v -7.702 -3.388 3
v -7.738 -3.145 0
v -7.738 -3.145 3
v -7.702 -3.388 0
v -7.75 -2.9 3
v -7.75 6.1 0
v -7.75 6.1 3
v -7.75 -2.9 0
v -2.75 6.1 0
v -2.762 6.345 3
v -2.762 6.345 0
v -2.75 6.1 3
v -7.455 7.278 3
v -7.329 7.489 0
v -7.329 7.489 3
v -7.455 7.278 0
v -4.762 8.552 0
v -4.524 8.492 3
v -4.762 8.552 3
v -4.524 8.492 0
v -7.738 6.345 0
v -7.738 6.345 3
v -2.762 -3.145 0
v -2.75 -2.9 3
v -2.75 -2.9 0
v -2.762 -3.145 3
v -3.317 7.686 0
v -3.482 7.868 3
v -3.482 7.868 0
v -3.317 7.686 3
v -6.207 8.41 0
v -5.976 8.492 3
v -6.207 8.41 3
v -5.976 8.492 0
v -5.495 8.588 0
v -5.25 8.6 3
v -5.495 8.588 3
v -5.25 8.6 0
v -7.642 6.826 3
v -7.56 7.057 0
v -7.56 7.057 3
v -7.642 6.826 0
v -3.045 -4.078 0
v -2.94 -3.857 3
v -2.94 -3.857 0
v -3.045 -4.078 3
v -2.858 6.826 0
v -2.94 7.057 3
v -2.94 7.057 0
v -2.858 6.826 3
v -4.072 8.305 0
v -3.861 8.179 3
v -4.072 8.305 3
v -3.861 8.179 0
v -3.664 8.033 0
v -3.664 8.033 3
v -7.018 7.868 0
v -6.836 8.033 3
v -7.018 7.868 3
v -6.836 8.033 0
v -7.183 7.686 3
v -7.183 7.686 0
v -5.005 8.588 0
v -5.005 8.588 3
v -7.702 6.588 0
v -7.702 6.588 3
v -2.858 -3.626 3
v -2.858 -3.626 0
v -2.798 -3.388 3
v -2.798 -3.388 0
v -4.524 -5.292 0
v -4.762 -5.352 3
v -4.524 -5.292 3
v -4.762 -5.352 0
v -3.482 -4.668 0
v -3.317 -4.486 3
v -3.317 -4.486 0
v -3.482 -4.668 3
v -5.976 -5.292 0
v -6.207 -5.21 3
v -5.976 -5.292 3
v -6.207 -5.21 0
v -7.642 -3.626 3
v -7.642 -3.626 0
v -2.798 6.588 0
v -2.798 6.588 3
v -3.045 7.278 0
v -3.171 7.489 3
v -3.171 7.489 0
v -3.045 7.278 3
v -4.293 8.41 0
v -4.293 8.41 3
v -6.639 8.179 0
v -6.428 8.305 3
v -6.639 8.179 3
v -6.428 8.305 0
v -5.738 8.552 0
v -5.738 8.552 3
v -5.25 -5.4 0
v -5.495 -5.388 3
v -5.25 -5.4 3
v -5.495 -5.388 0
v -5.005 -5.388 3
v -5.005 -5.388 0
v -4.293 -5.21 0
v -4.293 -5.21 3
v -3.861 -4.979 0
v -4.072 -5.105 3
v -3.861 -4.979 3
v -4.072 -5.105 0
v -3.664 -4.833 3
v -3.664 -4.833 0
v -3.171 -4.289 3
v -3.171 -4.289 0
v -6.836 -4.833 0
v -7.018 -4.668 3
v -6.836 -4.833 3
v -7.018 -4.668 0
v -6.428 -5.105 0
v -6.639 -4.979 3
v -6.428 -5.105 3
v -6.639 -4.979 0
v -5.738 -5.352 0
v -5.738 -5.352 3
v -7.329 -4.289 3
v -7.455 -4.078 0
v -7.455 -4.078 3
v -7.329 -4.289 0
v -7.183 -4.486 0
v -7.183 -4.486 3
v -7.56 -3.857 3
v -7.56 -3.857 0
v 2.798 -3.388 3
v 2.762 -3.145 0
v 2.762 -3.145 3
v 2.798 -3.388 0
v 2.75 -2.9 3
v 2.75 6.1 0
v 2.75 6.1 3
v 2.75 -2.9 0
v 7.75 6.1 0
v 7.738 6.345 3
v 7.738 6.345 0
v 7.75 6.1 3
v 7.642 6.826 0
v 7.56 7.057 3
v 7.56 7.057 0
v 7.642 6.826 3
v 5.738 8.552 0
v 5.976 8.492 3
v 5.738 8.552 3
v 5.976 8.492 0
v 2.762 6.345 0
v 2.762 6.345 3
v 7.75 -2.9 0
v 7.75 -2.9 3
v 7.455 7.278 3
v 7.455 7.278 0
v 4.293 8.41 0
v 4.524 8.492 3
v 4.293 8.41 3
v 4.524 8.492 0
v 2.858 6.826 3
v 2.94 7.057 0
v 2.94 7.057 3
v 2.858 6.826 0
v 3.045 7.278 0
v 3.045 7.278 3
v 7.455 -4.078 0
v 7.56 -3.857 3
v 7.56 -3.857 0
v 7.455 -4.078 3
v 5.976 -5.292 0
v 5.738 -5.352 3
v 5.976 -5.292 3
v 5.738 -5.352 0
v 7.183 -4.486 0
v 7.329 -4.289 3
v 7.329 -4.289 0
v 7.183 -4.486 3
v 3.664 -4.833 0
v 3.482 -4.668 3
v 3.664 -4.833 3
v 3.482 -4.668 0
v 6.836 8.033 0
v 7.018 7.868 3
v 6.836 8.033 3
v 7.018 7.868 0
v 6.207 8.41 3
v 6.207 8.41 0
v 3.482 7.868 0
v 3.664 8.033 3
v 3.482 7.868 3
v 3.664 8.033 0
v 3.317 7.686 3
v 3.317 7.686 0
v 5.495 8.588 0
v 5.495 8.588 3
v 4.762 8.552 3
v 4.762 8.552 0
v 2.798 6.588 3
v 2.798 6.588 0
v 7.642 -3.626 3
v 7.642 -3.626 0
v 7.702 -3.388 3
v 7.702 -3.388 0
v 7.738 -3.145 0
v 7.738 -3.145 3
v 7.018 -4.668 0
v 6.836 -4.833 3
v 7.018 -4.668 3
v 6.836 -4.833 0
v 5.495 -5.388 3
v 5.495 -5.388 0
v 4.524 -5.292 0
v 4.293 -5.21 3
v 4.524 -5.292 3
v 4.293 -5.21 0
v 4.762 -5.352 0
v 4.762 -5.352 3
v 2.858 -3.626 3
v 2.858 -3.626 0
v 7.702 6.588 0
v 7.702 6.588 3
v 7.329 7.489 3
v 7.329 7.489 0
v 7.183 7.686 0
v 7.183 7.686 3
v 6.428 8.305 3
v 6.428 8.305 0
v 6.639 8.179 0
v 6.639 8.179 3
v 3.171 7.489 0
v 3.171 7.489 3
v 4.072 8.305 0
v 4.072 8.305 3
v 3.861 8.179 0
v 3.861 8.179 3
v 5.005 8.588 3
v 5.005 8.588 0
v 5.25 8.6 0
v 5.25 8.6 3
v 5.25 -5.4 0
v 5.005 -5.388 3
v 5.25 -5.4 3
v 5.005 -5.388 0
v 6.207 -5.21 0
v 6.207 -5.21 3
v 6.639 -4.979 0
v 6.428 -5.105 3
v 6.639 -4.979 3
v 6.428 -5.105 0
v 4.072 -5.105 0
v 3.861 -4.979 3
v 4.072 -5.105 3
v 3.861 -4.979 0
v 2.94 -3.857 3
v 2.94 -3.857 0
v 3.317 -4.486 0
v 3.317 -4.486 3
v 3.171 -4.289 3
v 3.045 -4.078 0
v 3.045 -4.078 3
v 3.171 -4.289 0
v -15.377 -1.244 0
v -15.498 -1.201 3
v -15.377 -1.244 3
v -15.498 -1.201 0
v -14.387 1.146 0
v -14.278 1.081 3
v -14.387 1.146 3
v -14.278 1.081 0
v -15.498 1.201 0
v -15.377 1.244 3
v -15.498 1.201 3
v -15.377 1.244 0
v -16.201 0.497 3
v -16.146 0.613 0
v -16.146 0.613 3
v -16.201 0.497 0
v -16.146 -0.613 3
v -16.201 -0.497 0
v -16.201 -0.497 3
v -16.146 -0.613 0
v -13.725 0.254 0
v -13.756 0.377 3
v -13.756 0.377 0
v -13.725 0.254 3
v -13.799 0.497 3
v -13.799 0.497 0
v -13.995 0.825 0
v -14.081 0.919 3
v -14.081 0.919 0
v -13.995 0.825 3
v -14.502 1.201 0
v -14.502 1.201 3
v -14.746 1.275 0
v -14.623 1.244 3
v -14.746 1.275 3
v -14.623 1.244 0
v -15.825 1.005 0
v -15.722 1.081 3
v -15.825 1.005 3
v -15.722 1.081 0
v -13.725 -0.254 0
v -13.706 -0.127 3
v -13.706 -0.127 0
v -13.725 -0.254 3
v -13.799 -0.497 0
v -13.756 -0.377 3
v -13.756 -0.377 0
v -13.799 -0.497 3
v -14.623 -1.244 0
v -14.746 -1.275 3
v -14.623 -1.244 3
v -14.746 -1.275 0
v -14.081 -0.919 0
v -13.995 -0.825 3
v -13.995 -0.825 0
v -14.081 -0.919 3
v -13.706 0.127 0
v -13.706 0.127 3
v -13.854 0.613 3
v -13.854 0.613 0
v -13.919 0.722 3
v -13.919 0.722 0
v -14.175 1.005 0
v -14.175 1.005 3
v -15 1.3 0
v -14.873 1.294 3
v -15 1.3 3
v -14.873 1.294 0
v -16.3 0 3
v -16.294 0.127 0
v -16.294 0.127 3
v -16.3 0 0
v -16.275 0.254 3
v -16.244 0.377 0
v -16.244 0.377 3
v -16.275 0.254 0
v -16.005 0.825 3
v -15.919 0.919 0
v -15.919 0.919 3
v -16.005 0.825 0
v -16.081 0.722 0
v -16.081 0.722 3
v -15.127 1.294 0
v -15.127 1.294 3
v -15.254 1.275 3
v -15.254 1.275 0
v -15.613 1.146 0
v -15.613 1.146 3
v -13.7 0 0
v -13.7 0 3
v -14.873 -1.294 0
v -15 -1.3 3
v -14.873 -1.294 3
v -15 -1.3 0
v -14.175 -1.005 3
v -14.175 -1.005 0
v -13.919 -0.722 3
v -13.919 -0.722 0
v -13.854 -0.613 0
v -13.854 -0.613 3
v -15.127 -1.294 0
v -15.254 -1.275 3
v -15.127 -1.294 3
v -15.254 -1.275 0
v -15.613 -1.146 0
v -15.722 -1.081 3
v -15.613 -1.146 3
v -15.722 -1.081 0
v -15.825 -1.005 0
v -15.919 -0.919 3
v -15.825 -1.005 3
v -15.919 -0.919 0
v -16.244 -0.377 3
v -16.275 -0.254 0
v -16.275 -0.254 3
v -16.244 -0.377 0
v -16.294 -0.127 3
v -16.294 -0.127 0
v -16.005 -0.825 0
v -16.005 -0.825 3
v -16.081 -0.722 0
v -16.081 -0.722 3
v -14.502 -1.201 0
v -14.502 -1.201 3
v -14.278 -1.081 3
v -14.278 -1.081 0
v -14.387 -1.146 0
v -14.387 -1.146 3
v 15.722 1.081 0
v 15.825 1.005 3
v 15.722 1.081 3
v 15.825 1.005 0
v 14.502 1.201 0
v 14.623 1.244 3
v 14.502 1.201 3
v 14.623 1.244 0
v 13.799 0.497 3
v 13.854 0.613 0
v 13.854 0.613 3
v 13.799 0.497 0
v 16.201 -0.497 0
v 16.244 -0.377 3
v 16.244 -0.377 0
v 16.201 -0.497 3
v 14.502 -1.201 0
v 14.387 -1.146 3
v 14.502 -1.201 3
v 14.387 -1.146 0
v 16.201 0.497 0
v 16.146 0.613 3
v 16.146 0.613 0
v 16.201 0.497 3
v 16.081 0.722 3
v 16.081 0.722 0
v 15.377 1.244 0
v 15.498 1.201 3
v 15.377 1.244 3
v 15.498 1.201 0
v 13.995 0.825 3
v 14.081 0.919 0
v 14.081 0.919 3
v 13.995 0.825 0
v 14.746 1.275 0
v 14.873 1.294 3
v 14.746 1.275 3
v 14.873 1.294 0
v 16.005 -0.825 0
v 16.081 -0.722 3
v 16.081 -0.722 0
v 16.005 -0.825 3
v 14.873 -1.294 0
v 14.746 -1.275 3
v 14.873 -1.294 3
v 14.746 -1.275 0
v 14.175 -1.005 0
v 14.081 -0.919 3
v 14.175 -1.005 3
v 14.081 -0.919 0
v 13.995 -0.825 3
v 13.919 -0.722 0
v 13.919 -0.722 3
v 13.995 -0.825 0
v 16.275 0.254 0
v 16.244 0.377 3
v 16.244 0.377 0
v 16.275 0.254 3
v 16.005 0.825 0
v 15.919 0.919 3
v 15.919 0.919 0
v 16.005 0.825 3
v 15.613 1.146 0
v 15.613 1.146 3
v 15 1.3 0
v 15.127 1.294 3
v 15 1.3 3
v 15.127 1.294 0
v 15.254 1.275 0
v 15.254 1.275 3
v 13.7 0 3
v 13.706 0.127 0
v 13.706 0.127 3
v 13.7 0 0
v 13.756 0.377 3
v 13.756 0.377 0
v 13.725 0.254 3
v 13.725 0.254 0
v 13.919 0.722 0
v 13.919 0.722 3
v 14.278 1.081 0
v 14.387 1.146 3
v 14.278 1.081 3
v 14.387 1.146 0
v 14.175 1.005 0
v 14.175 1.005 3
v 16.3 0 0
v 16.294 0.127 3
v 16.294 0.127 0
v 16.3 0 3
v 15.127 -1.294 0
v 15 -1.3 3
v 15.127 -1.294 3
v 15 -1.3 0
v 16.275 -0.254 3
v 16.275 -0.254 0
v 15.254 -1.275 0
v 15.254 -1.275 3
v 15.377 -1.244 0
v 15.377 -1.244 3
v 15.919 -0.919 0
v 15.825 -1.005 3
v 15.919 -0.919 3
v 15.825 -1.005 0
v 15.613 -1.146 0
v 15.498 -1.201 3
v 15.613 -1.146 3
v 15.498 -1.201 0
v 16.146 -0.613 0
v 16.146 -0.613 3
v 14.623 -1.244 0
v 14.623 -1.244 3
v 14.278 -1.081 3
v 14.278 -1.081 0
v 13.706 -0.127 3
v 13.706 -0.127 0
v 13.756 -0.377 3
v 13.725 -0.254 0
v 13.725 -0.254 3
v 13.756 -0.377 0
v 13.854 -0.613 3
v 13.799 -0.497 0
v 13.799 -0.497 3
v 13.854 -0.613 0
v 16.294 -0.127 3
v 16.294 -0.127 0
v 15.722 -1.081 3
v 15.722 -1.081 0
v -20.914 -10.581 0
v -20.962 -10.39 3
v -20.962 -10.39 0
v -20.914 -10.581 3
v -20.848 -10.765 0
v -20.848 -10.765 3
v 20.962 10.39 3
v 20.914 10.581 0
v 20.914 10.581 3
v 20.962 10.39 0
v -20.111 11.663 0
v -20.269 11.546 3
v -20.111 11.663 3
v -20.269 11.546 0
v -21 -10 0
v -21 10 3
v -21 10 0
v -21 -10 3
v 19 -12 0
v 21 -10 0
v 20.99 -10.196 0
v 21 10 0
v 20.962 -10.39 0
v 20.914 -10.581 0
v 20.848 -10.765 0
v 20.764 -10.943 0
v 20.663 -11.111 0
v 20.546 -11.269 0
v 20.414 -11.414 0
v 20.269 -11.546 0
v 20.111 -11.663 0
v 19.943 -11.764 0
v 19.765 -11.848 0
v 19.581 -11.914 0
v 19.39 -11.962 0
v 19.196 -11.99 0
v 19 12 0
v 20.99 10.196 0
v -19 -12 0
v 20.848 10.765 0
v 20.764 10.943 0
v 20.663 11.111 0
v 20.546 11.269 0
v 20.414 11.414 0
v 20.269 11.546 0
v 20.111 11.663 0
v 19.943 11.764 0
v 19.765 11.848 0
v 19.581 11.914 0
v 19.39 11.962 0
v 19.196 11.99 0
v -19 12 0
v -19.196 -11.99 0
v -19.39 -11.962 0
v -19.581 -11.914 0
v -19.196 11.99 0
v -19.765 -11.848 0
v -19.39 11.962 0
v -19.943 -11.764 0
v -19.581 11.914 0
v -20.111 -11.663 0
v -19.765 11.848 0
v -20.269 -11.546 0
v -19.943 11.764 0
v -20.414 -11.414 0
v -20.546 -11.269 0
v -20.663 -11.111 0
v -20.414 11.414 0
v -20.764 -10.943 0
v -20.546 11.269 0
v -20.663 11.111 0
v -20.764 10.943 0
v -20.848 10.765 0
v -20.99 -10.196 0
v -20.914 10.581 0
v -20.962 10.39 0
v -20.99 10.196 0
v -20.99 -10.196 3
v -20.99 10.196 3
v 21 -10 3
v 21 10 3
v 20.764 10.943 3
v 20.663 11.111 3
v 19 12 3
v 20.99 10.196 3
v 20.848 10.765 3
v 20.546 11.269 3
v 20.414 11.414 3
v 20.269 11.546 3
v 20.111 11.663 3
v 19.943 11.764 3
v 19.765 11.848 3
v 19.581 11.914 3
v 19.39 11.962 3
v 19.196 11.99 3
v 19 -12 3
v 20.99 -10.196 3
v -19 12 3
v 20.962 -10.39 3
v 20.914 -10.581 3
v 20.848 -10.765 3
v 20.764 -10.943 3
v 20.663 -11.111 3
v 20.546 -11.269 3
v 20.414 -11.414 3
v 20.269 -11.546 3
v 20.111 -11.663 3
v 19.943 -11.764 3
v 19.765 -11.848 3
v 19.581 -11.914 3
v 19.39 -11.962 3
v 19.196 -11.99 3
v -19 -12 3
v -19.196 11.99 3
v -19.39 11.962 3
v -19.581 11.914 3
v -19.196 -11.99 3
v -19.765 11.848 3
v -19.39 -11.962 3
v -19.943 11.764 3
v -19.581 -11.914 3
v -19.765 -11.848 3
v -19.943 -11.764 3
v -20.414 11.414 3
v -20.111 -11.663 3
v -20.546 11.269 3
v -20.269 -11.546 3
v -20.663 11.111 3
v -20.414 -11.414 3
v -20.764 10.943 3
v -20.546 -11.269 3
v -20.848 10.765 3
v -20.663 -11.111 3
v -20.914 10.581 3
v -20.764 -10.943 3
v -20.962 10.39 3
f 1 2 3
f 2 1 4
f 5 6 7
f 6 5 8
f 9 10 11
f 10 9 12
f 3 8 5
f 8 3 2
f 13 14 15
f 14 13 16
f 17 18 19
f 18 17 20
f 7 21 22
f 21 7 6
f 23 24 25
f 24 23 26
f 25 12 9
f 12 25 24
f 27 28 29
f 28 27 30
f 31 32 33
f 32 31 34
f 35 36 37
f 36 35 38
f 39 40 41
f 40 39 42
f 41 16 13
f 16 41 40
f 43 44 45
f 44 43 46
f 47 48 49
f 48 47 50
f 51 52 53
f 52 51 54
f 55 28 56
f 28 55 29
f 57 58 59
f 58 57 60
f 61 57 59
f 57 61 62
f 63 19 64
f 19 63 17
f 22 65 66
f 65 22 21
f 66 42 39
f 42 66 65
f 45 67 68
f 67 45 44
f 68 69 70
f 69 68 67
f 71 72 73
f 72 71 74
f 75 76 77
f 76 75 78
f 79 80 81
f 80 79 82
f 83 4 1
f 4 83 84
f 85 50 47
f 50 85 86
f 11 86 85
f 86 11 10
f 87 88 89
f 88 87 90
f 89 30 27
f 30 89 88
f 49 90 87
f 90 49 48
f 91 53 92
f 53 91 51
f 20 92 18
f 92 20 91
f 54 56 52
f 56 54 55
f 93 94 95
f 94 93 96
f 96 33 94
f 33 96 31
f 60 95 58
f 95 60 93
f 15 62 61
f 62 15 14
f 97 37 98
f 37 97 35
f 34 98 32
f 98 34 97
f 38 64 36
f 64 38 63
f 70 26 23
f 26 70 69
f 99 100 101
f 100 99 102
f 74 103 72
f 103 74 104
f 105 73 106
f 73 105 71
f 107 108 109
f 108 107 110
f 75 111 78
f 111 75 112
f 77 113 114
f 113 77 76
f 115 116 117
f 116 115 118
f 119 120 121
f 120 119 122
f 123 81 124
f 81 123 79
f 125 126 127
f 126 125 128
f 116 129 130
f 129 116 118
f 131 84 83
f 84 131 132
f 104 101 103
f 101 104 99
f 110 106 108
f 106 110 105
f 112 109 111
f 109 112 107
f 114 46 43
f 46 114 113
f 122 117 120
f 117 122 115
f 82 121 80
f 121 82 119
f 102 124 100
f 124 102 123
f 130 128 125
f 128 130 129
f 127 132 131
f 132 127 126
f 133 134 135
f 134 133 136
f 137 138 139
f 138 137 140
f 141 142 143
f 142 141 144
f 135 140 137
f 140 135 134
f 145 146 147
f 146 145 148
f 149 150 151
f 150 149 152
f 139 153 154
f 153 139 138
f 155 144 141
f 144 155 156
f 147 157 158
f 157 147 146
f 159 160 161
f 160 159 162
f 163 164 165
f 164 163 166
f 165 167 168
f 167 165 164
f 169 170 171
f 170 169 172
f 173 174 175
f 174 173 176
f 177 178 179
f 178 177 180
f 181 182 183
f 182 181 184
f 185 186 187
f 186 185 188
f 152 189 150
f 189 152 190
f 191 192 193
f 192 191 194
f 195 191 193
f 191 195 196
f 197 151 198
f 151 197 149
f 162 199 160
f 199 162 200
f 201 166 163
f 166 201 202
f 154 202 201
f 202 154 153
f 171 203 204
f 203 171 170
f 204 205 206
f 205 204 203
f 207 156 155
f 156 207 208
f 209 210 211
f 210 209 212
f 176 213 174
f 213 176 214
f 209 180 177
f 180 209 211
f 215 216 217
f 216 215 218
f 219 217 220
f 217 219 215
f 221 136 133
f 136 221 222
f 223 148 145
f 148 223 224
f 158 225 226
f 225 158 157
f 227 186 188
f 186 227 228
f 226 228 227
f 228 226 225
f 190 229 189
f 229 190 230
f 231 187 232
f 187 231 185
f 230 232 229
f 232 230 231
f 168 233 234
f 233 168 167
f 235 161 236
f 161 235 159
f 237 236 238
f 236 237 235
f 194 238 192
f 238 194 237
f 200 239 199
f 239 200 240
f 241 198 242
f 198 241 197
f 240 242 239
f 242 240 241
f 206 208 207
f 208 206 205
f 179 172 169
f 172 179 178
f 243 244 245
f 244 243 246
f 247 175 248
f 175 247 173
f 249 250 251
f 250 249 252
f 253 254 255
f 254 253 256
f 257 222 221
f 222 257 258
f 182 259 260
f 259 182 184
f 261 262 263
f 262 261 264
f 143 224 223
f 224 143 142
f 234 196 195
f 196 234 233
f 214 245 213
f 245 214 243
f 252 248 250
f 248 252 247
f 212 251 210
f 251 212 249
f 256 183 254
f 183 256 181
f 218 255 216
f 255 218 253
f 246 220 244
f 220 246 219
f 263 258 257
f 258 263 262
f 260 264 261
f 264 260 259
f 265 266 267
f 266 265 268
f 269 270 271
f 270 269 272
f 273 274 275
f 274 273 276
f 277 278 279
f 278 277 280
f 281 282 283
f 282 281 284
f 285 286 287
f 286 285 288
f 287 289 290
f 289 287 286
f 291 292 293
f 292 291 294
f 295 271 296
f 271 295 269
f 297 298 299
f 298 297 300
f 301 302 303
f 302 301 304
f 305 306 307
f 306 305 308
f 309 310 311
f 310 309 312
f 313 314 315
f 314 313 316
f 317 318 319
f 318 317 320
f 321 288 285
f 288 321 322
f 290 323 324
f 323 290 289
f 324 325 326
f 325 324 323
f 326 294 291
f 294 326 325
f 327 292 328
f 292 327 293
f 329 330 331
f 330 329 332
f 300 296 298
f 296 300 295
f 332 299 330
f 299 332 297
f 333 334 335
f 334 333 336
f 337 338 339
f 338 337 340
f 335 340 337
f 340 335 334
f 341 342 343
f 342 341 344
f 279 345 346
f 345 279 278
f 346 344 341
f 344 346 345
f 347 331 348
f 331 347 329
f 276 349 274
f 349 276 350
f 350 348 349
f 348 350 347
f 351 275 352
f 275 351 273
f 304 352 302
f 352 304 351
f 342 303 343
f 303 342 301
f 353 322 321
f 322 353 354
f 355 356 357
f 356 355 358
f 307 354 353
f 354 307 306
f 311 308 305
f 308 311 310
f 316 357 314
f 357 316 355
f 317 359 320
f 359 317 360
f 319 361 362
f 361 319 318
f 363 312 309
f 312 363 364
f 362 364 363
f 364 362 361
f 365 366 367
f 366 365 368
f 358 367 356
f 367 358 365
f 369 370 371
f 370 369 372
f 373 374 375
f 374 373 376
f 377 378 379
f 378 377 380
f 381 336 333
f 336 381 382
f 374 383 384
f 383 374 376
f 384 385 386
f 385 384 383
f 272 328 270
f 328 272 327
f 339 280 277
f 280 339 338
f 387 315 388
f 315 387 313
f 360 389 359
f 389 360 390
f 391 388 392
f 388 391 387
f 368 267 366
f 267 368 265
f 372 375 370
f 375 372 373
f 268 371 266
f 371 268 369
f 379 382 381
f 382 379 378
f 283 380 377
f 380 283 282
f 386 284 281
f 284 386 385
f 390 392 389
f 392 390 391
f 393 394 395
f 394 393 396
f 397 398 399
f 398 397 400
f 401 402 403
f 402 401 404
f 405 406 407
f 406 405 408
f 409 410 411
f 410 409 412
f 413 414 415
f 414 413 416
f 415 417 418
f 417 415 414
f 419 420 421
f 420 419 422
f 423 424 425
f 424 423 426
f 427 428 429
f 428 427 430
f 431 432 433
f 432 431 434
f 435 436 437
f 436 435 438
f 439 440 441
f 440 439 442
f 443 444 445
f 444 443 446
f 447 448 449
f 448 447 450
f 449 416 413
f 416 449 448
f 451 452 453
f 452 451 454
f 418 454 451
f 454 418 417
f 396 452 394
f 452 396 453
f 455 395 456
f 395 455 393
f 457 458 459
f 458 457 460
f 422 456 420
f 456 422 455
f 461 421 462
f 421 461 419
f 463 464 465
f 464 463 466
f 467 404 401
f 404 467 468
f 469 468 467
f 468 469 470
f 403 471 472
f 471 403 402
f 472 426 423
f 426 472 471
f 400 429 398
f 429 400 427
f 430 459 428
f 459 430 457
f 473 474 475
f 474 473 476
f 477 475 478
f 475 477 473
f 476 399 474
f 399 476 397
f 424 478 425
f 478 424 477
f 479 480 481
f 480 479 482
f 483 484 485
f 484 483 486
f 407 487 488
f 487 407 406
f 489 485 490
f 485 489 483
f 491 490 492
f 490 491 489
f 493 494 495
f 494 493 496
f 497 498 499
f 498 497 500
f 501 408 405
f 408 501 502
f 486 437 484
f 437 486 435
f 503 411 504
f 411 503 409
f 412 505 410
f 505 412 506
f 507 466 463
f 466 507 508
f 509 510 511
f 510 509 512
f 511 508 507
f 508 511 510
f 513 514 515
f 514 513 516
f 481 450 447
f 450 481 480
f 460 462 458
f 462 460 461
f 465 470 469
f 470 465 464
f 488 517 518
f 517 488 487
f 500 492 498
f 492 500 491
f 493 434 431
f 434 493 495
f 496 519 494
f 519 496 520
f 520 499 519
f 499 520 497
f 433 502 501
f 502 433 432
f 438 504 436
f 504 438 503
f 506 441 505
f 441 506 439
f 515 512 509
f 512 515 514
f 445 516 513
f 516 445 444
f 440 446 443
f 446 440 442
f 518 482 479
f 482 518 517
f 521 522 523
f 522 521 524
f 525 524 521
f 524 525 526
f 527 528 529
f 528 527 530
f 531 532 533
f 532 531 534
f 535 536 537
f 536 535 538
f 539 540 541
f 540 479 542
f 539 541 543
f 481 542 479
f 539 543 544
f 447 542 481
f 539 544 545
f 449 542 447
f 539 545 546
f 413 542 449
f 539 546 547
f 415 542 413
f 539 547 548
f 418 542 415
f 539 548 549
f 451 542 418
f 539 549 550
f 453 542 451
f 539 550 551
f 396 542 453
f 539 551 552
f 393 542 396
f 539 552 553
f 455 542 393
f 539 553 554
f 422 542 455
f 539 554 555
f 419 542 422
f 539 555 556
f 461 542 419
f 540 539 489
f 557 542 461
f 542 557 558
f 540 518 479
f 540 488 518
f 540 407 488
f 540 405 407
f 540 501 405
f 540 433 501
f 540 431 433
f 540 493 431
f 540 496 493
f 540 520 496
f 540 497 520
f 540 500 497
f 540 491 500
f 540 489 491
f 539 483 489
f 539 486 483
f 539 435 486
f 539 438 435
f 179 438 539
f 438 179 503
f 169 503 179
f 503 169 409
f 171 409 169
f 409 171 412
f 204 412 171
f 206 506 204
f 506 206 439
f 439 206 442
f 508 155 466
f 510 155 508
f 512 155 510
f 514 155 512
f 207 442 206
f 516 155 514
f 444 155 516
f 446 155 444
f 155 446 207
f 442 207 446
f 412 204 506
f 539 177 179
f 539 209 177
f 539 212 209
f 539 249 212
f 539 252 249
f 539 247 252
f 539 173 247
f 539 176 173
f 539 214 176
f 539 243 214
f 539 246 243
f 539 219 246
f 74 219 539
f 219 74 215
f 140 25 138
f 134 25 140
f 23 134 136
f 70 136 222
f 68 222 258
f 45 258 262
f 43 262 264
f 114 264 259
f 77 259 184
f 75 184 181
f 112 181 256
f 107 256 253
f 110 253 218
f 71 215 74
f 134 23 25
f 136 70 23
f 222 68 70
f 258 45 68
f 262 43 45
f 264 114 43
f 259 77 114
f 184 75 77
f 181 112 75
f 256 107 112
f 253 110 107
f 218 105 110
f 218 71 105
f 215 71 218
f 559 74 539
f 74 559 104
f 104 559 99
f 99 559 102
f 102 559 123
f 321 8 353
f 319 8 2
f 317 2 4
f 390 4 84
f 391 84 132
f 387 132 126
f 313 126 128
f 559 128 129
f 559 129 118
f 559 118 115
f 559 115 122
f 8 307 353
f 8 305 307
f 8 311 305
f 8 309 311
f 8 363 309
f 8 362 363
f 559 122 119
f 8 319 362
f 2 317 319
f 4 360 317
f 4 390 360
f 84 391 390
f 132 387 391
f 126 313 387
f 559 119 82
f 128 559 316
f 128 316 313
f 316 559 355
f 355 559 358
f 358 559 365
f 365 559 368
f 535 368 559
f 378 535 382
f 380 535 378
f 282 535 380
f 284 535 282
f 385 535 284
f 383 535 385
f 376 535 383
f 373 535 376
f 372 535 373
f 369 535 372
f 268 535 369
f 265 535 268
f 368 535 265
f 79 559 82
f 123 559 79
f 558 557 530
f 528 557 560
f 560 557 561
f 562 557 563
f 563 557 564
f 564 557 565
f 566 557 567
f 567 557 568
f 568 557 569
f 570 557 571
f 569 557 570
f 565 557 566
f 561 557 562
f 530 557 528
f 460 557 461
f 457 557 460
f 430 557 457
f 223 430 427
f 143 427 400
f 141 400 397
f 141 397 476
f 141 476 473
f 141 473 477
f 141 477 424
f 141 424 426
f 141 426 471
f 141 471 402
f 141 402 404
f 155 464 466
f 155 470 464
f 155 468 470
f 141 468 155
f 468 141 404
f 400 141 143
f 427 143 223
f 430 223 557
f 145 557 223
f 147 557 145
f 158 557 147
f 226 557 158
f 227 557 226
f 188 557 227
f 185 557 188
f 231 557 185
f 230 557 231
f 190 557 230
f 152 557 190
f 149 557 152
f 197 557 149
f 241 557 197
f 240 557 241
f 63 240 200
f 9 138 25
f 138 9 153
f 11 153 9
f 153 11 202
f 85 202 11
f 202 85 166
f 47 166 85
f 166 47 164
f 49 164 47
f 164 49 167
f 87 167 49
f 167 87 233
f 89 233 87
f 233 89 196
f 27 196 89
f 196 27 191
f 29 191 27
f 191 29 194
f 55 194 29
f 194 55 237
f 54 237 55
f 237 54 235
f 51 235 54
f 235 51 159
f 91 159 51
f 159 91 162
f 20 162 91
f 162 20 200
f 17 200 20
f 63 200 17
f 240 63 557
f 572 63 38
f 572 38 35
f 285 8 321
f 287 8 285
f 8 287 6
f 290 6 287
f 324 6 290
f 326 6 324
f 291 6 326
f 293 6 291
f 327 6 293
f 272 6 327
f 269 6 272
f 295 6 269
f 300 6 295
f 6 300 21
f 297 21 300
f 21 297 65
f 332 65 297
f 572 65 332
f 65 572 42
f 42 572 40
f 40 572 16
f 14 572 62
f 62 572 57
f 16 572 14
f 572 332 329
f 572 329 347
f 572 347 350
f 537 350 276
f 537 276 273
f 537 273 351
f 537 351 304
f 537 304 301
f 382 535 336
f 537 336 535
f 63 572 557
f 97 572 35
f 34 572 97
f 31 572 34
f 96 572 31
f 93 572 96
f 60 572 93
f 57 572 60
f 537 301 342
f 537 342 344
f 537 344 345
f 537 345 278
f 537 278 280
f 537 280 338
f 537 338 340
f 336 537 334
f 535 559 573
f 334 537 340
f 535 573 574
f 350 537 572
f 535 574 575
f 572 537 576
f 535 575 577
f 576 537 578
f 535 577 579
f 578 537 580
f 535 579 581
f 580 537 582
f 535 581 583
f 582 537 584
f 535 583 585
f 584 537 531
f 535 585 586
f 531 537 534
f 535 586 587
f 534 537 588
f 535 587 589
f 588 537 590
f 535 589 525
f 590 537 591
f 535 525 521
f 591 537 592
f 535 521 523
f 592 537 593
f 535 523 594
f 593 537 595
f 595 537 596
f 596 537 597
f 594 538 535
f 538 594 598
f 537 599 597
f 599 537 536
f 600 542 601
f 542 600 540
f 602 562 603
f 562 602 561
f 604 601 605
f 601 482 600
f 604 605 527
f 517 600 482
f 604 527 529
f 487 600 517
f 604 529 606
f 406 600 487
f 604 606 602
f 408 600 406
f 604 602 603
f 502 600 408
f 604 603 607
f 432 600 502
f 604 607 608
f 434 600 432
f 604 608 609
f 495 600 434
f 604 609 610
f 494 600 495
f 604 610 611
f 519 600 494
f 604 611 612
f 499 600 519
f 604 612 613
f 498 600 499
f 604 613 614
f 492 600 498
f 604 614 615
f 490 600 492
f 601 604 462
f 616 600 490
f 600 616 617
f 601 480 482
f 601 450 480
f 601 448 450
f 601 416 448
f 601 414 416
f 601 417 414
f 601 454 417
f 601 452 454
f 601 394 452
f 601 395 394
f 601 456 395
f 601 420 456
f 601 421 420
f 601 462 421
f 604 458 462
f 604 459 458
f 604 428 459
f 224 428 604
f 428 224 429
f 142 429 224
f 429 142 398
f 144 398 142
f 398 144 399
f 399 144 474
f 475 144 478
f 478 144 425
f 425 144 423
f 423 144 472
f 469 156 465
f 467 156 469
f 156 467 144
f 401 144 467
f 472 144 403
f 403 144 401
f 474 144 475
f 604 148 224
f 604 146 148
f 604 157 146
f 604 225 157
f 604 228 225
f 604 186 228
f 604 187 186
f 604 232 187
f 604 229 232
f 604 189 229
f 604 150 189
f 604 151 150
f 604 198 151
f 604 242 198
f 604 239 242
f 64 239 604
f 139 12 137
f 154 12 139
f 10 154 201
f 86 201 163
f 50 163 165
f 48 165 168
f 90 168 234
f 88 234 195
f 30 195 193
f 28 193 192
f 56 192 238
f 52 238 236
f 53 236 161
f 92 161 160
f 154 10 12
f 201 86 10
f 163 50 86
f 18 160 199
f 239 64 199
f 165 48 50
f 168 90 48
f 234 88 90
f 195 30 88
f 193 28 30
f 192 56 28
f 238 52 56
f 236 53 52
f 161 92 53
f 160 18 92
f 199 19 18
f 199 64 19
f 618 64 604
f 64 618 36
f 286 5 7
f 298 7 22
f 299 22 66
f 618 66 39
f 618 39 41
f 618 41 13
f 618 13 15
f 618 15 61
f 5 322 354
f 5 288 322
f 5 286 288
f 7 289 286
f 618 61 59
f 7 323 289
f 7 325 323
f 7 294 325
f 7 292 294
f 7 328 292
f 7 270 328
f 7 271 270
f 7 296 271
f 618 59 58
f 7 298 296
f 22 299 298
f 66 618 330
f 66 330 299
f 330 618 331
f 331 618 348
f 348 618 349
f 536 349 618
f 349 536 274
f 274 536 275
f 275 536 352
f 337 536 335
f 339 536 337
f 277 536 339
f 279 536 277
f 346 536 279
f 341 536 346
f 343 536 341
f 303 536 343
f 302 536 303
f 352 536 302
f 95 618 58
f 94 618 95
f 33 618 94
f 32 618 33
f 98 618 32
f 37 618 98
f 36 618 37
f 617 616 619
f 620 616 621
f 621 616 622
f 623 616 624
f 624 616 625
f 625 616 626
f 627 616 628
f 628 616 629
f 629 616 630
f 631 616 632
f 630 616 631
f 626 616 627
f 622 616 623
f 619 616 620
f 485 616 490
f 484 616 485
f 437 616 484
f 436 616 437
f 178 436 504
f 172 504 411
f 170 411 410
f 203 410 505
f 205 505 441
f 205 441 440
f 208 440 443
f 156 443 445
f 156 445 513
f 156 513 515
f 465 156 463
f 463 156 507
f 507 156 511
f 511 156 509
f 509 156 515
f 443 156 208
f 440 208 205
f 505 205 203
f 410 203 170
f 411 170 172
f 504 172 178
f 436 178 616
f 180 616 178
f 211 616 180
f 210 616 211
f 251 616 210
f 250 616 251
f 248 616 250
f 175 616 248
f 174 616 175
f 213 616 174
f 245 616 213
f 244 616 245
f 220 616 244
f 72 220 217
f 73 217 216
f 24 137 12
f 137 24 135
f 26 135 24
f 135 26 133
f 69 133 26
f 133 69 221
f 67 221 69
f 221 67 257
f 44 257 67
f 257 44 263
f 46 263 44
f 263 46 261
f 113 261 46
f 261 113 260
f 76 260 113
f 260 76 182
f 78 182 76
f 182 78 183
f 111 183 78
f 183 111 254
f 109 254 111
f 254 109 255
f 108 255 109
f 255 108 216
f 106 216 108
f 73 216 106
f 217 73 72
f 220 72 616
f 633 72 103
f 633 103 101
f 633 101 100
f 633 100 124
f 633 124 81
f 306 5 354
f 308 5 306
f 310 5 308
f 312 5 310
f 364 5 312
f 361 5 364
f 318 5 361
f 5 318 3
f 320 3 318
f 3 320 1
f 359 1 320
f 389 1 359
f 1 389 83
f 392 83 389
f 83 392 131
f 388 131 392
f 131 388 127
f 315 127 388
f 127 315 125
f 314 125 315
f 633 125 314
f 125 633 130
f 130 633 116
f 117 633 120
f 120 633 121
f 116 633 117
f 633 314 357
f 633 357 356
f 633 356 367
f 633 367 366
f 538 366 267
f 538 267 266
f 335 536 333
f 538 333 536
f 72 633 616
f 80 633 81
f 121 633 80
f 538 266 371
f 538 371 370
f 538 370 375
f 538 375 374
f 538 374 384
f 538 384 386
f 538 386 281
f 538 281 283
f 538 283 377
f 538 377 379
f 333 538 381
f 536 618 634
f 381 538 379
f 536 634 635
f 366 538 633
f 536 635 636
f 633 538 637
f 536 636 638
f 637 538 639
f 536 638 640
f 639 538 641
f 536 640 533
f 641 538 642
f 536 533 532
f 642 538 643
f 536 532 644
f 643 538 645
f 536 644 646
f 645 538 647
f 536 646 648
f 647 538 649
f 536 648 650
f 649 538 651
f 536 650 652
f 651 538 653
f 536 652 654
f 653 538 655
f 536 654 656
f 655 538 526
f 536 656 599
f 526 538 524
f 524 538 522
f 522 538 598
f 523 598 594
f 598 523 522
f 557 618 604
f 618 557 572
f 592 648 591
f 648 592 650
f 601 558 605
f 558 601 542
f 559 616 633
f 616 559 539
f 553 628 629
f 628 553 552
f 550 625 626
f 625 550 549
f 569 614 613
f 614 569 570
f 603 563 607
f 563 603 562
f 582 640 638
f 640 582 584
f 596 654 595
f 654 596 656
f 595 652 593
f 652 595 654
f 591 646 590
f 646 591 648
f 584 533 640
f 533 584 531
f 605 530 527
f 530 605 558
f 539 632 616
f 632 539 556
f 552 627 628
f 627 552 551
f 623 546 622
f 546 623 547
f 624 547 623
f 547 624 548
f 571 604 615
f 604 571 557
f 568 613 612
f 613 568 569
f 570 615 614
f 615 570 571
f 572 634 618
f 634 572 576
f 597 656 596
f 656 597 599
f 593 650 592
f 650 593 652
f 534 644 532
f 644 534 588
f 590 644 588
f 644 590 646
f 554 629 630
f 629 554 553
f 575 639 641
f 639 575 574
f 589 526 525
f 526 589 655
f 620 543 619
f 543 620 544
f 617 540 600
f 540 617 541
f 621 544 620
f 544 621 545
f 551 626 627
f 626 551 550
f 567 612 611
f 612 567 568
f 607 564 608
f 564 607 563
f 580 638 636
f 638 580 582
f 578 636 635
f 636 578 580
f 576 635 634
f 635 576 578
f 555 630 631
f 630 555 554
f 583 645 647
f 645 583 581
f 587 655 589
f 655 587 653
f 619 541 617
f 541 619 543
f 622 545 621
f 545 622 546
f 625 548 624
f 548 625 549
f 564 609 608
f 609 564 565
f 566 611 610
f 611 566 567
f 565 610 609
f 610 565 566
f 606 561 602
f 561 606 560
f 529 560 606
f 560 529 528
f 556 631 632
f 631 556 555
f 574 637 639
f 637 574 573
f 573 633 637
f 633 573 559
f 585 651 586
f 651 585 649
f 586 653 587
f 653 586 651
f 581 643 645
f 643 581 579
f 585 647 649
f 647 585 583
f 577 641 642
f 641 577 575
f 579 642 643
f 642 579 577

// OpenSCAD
/*
  Simple TF-Luna LiDAR / rangefinder mount plate

  Official reference:
  - Benewake TF-Luna Datasheet A05, dimensions figure.
  - Official PDF: https://en.benewake.com/uploadfiles/2025/04/20250430174501874.pdf
  - Body: 35 x 21.25 x 12.5 mm.
  - Optical window diameter: 10.5 mm.
  - Mounting holes: 2 x dia 2.2 mm.

  Project measurement:
  - Mounting-hole center spacing measured on the part: 30 mm.
*/

$fn = 64;

plate_width = 42;
plate_height = 24;
plate_thickness = 3;
corner_radius = 2;

// TF-Luna screw holes.
hole_spacing = 30; // measured center-to-center distance
hole_diameter = 2.6; // M2 clearance, official sensor hole is dia 2.2 mm

// Velcro-friendly optical slits.
// Official optical window diameter is 10.5 mm. These narrow slits keep more
// rear surface area for hook-and-loop tape while leaving the optical centers open.
slit_spacing = 10.5;
slit_width = 5;
slit_height = 14;
slit_y = 1.6;
slit_radius = 2.5;

module rounded_rect(width, height, radius) {
    hull() {
        for (x = [-width / 2 + radius, width / 2 - radius]) {
            for (y = [-height / 2 + radius, height / 2 - radius]) {
                translate([x, y]) circle(r = radius);
            }
        }
    }
}

module plate() {
    linear_extrude(height = plate_thickness) {
        rounded_rect(plate_width, plate_height, corner_radius);
    }
}

module cut_hole(x, y, diameter) {
    translate([x, y, -0.1]) {
        cylinder(h = plate_thickness + 0.2, d = diameter);
    }
}

module cut_slit(x, y) {
    translate([x, y, -0.1]) {
        linear_extrude(height = plate_thickness + 0.2) {
            rounded_rect(slit_width, slit_height, slit_radius);
        }
    }
}

difference() {
    plate();

    for (x = [-slit_spacing / 2, slit_spacing / 2]) {
        cut_slit(x, slit_y);
    }

    for (x = [-hole_spacing / 2, hole_spacing / 2]) {
        cut_hole(x, 0, hole_diameter);
    }
}
